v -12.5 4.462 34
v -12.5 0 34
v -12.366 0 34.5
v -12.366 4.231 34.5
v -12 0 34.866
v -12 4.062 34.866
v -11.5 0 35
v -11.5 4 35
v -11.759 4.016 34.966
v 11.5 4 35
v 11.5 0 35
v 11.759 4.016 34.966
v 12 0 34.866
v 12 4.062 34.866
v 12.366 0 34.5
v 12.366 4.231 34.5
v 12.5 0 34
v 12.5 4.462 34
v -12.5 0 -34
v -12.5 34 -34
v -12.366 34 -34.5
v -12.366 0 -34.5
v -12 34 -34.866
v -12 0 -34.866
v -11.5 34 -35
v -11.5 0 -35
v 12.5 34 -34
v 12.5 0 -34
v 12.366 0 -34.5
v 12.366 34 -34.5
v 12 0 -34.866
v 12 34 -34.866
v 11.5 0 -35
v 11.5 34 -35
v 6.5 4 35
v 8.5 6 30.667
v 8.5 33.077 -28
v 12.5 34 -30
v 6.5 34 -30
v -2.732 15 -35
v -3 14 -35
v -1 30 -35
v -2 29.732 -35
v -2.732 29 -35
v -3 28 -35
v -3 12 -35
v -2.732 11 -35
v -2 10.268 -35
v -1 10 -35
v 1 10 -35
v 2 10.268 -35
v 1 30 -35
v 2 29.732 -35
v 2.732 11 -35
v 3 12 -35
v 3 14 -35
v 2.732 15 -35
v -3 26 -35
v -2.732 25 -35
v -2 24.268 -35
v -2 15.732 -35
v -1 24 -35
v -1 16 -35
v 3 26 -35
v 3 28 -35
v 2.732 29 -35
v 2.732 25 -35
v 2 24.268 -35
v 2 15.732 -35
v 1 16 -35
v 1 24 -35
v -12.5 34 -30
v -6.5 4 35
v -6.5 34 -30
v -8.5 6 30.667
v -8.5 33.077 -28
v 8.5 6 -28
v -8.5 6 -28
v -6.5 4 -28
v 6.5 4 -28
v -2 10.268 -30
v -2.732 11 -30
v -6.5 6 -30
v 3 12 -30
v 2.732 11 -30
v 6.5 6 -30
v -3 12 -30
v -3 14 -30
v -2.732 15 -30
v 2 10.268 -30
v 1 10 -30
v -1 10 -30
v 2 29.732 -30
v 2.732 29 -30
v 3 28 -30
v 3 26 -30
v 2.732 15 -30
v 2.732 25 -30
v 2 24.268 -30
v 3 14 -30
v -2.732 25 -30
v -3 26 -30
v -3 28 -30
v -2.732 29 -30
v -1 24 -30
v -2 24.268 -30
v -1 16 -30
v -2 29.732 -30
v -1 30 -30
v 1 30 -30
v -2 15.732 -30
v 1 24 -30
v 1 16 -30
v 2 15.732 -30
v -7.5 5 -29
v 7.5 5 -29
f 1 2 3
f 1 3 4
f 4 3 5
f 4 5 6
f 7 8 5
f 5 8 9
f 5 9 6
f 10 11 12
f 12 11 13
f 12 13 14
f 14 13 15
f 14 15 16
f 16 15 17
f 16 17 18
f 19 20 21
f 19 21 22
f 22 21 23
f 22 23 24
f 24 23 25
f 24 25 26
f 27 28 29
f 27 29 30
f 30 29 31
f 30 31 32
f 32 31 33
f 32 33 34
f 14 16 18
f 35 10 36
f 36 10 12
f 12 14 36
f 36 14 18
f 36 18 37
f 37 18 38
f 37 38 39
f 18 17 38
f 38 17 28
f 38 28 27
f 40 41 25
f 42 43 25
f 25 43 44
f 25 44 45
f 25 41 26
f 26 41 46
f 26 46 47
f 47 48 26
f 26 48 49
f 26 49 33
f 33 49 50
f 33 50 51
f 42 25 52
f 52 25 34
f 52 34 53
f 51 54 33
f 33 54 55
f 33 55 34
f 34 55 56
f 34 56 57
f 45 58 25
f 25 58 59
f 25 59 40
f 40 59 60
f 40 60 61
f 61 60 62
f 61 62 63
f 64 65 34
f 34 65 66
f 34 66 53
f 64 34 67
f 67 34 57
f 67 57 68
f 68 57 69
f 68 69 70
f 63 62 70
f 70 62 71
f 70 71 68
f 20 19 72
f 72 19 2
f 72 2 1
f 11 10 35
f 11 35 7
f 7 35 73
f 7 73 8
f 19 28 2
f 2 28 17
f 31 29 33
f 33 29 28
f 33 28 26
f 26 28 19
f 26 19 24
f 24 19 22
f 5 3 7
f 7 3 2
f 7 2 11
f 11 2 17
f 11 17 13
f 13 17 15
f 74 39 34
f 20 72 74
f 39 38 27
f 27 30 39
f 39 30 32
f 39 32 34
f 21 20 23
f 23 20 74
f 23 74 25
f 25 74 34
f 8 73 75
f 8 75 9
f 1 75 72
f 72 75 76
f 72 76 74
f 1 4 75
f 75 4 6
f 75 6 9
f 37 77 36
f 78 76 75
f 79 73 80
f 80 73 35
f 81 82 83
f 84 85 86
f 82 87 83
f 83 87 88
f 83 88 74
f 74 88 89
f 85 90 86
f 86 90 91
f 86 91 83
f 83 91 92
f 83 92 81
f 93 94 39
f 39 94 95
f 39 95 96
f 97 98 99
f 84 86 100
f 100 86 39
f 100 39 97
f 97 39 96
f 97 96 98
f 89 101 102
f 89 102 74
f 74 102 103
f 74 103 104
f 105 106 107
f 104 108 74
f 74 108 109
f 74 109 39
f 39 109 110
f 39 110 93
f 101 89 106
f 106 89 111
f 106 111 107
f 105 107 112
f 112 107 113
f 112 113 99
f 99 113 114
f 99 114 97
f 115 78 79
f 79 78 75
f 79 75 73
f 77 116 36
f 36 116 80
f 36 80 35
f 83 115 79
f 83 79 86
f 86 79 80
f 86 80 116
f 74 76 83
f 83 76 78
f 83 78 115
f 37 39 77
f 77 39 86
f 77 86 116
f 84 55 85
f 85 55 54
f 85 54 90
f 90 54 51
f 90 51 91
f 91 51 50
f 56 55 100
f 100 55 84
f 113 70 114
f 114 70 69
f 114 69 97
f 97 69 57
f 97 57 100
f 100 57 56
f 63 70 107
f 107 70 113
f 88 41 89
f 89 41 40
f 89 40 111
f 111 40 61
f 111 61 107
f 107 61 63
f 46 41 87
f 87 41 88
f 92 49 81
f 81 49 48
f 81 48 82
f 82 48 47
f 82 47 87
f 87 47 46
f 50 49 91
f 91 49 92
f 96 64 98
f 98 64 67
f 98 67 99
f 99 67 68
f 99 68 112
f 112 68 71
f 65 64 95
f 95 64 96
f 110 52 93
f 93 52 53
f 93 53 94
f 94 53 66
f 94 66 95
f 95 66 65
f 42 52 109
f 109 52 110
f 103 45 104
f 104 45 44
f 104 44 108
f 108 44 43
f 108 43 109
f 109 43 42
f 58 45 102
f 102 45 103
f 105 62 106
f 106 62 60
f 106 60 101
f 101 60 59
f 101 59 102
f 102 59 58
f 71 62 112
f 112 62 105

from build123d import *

# Parameters (mm, degrees)
ESBO_O1_W               = 25
ESBO_O1_H               = 70
BASE_DEPTH              = 4
ESBO_O2_W               = 25
ESBO_O2_H               = 5
PAREDE_DO_FUNDO_DEPTH   = 30
PAREDES_START           = -12.5
PAREDES_LATERAIS_DEPTH  = 25
ESBO_O3_W               = 17
ESBO_O3_H               = 30
CORTE_NAS_PAREDES_DEPTH = 65
CHANFRO3_SIZE           = 2
CHANFRO4_SIZE           = 2
CHANFRO5_SIZE           = 2
CHANFRO6_SIZE           = 2
CHANFRO7_SIZE           = 2
PARAFUSO_DEPTH          = 45
FILETE1_R               = 1
FILETE2_R               = 1
FILETE3_R               = 1
FILETE4_R               = 1


with BuildPart() as part:
    # Esboço1 → Base (new body)
    with BuildSketch(Plane(origin=(0, 0, 0), x_dir=(1, 0, 0), z_dir=(0, 1, 0))):
        Rectangle(ESBO_O1_W, ESBO_O1_H)
    extrude(amount=BASE_DEPTH)

    # Esboço2 → Parede do fundo (add)
    with BuildSketch(Plane(origin=(0, 4, 0), x_dir=(1, 0, 0), z_dir=(0, 1, 0))):
        with Locations((0, 32.5)):
            Rectangle(ESBO_O2_W, ESBO_O2_H)
    extrude(amount=PAREDE_DO_FUNDO_DEPTH)

    # Paredes Laterais: read off the stored shape, not the designer's step
    # Paredes Laterais outline → Paredes Laterais (add)
    with BuildSketch(Plane.YZ.offset(PAREDES_START)):
        Polygon((34, -30), (4, 35), (4, -30), align=None)
    extrude(amount=PAREDES_LATERAIS_DEPTH)

    # Esboço3 → Corte nas Paredes (cut)
    with BuildSketch(Plane.XY.offset(35)):
        with Locations((0, 19)):
            Rectangle(ESBO_O3_W, ESBO_O3_H)
    extrude(amount=-CORTE_NAS_PAREDES_DEPTH, mode=Mode.SUBTRACT)

    # Chanfro3
    chanfro3_edges = [part.edges().sort_by_distance(p)[0] for p in [
        (-8.5, 4, 2.5),
    ]]
    chamfer(chanfro3_edges, length=CHANFRO3_SIZE)

    # Chanfro4
    chanfro4_edges = [part.edges().sort_by_distance(p)[0] for p in [
        (8.5, 4, 2.5),
    ]]
    chamfer(chanfro4_edges, length=CHANFRO4_SIZE)

    # Chanfro5
    chanfro5_edges = [part.edges().sort_by_distance(p)[0] for p in [
        (0, 4, -30),
    ]]
    chamfer(chanfro5_edges, length=CHANFRO5_SIZE)

    # Chanfro6
    chanfro6_edges = [part.edges().sort_by_distance(p)[0] for p in [
        (-8.5, 20, -30),
    ]]
    chamfer(chanfro6_edges, length=CHANFRO6_SIZE)

    # Chanfro7
    chanfro7_edges = [part.edges().sort_by_distance(p)[0] for p in [
        (8.5, 20, -30),
    ]]
    chamfer(chanfro7_edges, length=CHANFRO7_SIZE)

    # Esboço4 → Parafuso (cut)
    with BuildSketch(Plane(origin=(0, 0, -35), x_dir=(-1, 0, 0), z_dir=(0, 0, -1))):
        with BuildLine():
            Line((-1, 16), (1, 16))
            ThreePointArc((1, 16), (2.414213562, 15.414213562), (3, 14))
            Line((3, 14), (3, 12))
            ThreePointArc((3, 12), (2.414213562, 10.585786438), (1, 10))
            Line((1, 10), (-1, 10))
            ThreePointArc((-1, 10), (-2.414213562, 10.585786438), (-3, 12))
            Line((-3, 12), (-3, 14))
            ThreePointArc((-3, 14), (-2.414213562, 15.414213562), (-1, 16))
        make_face()
        with BuildLine():
            Line((-3, 26), (-3, 28))
            ThreePointArc((-3, 28), (-2.414213562, 29.414213562), (-1, 30))
            Line((-1, 30), (1, 30))
            ThreePointArc((1, 30), (2.414213562, 29.414213562), (3, 28))
            Line((3, 28), (3, 26))
            ThreePointArc((3, 26), (2.414213562, 24.585786438), (1, 24))
            Line((1, 24), (-1, 24))
            ThreePointArc((-1, 24), (-2.414213562, 24.585786438), (-3, 26))
        make_face()
    extrude(amount=-PARAFUSO_DEPTH, mode=Mode.SUBTRACT)

    # Filete1
    filete1_edges = [part.edges().sort_by_distance(p)[0] for p in [
        (12.5, 17, -35),
    ]]
    fillet(filete1_edges, radius=FILETE1_R)

    # Filete2
    filete2_edges = [part.edges().sort_by_distance(p)[0] for p in [
        (-12.5, 17, -35),
    ]]
    fillet(filete2_edges, radius=FILETE2_R)

    # Filete3
    filete3_edges = [part.edges().sort_by_distance(p)[0] for p in [
        (12.5, 2, 35),
    ]]
    fillet(filete3_edges, radius=FILETE3_R)

    # Filete4
    filete4_edges = [part.edges().sort_by_distance(p)[0] for p in [
        (-12.5, 2, 35),
    ]]
    fillet(filete4_edges, radius=FILETE4_R)


solid = part.part
